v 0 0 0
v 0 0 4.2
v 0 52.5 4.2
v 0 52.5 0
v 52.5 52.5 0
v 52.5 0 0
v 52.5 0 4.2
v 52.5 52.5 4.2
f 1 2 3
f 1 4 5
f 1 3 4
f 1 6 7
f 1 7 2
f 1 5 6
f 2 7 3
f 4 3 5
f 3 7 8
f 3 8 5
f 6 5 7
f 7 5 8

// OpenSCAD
/* Warning, this is a very basic generator with a lot of approximation 
input data : [HBGA, 8LW, 52.5x52.5x4.2mm, 3727, , C, C04-00665C]
generated by com.zoubworld.electronics.cad.model3d.Basic
Date : Sun Feb 15 10:50:49 CET 2026
*/

//body
color("black")
translate([0,0,0])
cube([52.5,52.5,4.2], center=false);
